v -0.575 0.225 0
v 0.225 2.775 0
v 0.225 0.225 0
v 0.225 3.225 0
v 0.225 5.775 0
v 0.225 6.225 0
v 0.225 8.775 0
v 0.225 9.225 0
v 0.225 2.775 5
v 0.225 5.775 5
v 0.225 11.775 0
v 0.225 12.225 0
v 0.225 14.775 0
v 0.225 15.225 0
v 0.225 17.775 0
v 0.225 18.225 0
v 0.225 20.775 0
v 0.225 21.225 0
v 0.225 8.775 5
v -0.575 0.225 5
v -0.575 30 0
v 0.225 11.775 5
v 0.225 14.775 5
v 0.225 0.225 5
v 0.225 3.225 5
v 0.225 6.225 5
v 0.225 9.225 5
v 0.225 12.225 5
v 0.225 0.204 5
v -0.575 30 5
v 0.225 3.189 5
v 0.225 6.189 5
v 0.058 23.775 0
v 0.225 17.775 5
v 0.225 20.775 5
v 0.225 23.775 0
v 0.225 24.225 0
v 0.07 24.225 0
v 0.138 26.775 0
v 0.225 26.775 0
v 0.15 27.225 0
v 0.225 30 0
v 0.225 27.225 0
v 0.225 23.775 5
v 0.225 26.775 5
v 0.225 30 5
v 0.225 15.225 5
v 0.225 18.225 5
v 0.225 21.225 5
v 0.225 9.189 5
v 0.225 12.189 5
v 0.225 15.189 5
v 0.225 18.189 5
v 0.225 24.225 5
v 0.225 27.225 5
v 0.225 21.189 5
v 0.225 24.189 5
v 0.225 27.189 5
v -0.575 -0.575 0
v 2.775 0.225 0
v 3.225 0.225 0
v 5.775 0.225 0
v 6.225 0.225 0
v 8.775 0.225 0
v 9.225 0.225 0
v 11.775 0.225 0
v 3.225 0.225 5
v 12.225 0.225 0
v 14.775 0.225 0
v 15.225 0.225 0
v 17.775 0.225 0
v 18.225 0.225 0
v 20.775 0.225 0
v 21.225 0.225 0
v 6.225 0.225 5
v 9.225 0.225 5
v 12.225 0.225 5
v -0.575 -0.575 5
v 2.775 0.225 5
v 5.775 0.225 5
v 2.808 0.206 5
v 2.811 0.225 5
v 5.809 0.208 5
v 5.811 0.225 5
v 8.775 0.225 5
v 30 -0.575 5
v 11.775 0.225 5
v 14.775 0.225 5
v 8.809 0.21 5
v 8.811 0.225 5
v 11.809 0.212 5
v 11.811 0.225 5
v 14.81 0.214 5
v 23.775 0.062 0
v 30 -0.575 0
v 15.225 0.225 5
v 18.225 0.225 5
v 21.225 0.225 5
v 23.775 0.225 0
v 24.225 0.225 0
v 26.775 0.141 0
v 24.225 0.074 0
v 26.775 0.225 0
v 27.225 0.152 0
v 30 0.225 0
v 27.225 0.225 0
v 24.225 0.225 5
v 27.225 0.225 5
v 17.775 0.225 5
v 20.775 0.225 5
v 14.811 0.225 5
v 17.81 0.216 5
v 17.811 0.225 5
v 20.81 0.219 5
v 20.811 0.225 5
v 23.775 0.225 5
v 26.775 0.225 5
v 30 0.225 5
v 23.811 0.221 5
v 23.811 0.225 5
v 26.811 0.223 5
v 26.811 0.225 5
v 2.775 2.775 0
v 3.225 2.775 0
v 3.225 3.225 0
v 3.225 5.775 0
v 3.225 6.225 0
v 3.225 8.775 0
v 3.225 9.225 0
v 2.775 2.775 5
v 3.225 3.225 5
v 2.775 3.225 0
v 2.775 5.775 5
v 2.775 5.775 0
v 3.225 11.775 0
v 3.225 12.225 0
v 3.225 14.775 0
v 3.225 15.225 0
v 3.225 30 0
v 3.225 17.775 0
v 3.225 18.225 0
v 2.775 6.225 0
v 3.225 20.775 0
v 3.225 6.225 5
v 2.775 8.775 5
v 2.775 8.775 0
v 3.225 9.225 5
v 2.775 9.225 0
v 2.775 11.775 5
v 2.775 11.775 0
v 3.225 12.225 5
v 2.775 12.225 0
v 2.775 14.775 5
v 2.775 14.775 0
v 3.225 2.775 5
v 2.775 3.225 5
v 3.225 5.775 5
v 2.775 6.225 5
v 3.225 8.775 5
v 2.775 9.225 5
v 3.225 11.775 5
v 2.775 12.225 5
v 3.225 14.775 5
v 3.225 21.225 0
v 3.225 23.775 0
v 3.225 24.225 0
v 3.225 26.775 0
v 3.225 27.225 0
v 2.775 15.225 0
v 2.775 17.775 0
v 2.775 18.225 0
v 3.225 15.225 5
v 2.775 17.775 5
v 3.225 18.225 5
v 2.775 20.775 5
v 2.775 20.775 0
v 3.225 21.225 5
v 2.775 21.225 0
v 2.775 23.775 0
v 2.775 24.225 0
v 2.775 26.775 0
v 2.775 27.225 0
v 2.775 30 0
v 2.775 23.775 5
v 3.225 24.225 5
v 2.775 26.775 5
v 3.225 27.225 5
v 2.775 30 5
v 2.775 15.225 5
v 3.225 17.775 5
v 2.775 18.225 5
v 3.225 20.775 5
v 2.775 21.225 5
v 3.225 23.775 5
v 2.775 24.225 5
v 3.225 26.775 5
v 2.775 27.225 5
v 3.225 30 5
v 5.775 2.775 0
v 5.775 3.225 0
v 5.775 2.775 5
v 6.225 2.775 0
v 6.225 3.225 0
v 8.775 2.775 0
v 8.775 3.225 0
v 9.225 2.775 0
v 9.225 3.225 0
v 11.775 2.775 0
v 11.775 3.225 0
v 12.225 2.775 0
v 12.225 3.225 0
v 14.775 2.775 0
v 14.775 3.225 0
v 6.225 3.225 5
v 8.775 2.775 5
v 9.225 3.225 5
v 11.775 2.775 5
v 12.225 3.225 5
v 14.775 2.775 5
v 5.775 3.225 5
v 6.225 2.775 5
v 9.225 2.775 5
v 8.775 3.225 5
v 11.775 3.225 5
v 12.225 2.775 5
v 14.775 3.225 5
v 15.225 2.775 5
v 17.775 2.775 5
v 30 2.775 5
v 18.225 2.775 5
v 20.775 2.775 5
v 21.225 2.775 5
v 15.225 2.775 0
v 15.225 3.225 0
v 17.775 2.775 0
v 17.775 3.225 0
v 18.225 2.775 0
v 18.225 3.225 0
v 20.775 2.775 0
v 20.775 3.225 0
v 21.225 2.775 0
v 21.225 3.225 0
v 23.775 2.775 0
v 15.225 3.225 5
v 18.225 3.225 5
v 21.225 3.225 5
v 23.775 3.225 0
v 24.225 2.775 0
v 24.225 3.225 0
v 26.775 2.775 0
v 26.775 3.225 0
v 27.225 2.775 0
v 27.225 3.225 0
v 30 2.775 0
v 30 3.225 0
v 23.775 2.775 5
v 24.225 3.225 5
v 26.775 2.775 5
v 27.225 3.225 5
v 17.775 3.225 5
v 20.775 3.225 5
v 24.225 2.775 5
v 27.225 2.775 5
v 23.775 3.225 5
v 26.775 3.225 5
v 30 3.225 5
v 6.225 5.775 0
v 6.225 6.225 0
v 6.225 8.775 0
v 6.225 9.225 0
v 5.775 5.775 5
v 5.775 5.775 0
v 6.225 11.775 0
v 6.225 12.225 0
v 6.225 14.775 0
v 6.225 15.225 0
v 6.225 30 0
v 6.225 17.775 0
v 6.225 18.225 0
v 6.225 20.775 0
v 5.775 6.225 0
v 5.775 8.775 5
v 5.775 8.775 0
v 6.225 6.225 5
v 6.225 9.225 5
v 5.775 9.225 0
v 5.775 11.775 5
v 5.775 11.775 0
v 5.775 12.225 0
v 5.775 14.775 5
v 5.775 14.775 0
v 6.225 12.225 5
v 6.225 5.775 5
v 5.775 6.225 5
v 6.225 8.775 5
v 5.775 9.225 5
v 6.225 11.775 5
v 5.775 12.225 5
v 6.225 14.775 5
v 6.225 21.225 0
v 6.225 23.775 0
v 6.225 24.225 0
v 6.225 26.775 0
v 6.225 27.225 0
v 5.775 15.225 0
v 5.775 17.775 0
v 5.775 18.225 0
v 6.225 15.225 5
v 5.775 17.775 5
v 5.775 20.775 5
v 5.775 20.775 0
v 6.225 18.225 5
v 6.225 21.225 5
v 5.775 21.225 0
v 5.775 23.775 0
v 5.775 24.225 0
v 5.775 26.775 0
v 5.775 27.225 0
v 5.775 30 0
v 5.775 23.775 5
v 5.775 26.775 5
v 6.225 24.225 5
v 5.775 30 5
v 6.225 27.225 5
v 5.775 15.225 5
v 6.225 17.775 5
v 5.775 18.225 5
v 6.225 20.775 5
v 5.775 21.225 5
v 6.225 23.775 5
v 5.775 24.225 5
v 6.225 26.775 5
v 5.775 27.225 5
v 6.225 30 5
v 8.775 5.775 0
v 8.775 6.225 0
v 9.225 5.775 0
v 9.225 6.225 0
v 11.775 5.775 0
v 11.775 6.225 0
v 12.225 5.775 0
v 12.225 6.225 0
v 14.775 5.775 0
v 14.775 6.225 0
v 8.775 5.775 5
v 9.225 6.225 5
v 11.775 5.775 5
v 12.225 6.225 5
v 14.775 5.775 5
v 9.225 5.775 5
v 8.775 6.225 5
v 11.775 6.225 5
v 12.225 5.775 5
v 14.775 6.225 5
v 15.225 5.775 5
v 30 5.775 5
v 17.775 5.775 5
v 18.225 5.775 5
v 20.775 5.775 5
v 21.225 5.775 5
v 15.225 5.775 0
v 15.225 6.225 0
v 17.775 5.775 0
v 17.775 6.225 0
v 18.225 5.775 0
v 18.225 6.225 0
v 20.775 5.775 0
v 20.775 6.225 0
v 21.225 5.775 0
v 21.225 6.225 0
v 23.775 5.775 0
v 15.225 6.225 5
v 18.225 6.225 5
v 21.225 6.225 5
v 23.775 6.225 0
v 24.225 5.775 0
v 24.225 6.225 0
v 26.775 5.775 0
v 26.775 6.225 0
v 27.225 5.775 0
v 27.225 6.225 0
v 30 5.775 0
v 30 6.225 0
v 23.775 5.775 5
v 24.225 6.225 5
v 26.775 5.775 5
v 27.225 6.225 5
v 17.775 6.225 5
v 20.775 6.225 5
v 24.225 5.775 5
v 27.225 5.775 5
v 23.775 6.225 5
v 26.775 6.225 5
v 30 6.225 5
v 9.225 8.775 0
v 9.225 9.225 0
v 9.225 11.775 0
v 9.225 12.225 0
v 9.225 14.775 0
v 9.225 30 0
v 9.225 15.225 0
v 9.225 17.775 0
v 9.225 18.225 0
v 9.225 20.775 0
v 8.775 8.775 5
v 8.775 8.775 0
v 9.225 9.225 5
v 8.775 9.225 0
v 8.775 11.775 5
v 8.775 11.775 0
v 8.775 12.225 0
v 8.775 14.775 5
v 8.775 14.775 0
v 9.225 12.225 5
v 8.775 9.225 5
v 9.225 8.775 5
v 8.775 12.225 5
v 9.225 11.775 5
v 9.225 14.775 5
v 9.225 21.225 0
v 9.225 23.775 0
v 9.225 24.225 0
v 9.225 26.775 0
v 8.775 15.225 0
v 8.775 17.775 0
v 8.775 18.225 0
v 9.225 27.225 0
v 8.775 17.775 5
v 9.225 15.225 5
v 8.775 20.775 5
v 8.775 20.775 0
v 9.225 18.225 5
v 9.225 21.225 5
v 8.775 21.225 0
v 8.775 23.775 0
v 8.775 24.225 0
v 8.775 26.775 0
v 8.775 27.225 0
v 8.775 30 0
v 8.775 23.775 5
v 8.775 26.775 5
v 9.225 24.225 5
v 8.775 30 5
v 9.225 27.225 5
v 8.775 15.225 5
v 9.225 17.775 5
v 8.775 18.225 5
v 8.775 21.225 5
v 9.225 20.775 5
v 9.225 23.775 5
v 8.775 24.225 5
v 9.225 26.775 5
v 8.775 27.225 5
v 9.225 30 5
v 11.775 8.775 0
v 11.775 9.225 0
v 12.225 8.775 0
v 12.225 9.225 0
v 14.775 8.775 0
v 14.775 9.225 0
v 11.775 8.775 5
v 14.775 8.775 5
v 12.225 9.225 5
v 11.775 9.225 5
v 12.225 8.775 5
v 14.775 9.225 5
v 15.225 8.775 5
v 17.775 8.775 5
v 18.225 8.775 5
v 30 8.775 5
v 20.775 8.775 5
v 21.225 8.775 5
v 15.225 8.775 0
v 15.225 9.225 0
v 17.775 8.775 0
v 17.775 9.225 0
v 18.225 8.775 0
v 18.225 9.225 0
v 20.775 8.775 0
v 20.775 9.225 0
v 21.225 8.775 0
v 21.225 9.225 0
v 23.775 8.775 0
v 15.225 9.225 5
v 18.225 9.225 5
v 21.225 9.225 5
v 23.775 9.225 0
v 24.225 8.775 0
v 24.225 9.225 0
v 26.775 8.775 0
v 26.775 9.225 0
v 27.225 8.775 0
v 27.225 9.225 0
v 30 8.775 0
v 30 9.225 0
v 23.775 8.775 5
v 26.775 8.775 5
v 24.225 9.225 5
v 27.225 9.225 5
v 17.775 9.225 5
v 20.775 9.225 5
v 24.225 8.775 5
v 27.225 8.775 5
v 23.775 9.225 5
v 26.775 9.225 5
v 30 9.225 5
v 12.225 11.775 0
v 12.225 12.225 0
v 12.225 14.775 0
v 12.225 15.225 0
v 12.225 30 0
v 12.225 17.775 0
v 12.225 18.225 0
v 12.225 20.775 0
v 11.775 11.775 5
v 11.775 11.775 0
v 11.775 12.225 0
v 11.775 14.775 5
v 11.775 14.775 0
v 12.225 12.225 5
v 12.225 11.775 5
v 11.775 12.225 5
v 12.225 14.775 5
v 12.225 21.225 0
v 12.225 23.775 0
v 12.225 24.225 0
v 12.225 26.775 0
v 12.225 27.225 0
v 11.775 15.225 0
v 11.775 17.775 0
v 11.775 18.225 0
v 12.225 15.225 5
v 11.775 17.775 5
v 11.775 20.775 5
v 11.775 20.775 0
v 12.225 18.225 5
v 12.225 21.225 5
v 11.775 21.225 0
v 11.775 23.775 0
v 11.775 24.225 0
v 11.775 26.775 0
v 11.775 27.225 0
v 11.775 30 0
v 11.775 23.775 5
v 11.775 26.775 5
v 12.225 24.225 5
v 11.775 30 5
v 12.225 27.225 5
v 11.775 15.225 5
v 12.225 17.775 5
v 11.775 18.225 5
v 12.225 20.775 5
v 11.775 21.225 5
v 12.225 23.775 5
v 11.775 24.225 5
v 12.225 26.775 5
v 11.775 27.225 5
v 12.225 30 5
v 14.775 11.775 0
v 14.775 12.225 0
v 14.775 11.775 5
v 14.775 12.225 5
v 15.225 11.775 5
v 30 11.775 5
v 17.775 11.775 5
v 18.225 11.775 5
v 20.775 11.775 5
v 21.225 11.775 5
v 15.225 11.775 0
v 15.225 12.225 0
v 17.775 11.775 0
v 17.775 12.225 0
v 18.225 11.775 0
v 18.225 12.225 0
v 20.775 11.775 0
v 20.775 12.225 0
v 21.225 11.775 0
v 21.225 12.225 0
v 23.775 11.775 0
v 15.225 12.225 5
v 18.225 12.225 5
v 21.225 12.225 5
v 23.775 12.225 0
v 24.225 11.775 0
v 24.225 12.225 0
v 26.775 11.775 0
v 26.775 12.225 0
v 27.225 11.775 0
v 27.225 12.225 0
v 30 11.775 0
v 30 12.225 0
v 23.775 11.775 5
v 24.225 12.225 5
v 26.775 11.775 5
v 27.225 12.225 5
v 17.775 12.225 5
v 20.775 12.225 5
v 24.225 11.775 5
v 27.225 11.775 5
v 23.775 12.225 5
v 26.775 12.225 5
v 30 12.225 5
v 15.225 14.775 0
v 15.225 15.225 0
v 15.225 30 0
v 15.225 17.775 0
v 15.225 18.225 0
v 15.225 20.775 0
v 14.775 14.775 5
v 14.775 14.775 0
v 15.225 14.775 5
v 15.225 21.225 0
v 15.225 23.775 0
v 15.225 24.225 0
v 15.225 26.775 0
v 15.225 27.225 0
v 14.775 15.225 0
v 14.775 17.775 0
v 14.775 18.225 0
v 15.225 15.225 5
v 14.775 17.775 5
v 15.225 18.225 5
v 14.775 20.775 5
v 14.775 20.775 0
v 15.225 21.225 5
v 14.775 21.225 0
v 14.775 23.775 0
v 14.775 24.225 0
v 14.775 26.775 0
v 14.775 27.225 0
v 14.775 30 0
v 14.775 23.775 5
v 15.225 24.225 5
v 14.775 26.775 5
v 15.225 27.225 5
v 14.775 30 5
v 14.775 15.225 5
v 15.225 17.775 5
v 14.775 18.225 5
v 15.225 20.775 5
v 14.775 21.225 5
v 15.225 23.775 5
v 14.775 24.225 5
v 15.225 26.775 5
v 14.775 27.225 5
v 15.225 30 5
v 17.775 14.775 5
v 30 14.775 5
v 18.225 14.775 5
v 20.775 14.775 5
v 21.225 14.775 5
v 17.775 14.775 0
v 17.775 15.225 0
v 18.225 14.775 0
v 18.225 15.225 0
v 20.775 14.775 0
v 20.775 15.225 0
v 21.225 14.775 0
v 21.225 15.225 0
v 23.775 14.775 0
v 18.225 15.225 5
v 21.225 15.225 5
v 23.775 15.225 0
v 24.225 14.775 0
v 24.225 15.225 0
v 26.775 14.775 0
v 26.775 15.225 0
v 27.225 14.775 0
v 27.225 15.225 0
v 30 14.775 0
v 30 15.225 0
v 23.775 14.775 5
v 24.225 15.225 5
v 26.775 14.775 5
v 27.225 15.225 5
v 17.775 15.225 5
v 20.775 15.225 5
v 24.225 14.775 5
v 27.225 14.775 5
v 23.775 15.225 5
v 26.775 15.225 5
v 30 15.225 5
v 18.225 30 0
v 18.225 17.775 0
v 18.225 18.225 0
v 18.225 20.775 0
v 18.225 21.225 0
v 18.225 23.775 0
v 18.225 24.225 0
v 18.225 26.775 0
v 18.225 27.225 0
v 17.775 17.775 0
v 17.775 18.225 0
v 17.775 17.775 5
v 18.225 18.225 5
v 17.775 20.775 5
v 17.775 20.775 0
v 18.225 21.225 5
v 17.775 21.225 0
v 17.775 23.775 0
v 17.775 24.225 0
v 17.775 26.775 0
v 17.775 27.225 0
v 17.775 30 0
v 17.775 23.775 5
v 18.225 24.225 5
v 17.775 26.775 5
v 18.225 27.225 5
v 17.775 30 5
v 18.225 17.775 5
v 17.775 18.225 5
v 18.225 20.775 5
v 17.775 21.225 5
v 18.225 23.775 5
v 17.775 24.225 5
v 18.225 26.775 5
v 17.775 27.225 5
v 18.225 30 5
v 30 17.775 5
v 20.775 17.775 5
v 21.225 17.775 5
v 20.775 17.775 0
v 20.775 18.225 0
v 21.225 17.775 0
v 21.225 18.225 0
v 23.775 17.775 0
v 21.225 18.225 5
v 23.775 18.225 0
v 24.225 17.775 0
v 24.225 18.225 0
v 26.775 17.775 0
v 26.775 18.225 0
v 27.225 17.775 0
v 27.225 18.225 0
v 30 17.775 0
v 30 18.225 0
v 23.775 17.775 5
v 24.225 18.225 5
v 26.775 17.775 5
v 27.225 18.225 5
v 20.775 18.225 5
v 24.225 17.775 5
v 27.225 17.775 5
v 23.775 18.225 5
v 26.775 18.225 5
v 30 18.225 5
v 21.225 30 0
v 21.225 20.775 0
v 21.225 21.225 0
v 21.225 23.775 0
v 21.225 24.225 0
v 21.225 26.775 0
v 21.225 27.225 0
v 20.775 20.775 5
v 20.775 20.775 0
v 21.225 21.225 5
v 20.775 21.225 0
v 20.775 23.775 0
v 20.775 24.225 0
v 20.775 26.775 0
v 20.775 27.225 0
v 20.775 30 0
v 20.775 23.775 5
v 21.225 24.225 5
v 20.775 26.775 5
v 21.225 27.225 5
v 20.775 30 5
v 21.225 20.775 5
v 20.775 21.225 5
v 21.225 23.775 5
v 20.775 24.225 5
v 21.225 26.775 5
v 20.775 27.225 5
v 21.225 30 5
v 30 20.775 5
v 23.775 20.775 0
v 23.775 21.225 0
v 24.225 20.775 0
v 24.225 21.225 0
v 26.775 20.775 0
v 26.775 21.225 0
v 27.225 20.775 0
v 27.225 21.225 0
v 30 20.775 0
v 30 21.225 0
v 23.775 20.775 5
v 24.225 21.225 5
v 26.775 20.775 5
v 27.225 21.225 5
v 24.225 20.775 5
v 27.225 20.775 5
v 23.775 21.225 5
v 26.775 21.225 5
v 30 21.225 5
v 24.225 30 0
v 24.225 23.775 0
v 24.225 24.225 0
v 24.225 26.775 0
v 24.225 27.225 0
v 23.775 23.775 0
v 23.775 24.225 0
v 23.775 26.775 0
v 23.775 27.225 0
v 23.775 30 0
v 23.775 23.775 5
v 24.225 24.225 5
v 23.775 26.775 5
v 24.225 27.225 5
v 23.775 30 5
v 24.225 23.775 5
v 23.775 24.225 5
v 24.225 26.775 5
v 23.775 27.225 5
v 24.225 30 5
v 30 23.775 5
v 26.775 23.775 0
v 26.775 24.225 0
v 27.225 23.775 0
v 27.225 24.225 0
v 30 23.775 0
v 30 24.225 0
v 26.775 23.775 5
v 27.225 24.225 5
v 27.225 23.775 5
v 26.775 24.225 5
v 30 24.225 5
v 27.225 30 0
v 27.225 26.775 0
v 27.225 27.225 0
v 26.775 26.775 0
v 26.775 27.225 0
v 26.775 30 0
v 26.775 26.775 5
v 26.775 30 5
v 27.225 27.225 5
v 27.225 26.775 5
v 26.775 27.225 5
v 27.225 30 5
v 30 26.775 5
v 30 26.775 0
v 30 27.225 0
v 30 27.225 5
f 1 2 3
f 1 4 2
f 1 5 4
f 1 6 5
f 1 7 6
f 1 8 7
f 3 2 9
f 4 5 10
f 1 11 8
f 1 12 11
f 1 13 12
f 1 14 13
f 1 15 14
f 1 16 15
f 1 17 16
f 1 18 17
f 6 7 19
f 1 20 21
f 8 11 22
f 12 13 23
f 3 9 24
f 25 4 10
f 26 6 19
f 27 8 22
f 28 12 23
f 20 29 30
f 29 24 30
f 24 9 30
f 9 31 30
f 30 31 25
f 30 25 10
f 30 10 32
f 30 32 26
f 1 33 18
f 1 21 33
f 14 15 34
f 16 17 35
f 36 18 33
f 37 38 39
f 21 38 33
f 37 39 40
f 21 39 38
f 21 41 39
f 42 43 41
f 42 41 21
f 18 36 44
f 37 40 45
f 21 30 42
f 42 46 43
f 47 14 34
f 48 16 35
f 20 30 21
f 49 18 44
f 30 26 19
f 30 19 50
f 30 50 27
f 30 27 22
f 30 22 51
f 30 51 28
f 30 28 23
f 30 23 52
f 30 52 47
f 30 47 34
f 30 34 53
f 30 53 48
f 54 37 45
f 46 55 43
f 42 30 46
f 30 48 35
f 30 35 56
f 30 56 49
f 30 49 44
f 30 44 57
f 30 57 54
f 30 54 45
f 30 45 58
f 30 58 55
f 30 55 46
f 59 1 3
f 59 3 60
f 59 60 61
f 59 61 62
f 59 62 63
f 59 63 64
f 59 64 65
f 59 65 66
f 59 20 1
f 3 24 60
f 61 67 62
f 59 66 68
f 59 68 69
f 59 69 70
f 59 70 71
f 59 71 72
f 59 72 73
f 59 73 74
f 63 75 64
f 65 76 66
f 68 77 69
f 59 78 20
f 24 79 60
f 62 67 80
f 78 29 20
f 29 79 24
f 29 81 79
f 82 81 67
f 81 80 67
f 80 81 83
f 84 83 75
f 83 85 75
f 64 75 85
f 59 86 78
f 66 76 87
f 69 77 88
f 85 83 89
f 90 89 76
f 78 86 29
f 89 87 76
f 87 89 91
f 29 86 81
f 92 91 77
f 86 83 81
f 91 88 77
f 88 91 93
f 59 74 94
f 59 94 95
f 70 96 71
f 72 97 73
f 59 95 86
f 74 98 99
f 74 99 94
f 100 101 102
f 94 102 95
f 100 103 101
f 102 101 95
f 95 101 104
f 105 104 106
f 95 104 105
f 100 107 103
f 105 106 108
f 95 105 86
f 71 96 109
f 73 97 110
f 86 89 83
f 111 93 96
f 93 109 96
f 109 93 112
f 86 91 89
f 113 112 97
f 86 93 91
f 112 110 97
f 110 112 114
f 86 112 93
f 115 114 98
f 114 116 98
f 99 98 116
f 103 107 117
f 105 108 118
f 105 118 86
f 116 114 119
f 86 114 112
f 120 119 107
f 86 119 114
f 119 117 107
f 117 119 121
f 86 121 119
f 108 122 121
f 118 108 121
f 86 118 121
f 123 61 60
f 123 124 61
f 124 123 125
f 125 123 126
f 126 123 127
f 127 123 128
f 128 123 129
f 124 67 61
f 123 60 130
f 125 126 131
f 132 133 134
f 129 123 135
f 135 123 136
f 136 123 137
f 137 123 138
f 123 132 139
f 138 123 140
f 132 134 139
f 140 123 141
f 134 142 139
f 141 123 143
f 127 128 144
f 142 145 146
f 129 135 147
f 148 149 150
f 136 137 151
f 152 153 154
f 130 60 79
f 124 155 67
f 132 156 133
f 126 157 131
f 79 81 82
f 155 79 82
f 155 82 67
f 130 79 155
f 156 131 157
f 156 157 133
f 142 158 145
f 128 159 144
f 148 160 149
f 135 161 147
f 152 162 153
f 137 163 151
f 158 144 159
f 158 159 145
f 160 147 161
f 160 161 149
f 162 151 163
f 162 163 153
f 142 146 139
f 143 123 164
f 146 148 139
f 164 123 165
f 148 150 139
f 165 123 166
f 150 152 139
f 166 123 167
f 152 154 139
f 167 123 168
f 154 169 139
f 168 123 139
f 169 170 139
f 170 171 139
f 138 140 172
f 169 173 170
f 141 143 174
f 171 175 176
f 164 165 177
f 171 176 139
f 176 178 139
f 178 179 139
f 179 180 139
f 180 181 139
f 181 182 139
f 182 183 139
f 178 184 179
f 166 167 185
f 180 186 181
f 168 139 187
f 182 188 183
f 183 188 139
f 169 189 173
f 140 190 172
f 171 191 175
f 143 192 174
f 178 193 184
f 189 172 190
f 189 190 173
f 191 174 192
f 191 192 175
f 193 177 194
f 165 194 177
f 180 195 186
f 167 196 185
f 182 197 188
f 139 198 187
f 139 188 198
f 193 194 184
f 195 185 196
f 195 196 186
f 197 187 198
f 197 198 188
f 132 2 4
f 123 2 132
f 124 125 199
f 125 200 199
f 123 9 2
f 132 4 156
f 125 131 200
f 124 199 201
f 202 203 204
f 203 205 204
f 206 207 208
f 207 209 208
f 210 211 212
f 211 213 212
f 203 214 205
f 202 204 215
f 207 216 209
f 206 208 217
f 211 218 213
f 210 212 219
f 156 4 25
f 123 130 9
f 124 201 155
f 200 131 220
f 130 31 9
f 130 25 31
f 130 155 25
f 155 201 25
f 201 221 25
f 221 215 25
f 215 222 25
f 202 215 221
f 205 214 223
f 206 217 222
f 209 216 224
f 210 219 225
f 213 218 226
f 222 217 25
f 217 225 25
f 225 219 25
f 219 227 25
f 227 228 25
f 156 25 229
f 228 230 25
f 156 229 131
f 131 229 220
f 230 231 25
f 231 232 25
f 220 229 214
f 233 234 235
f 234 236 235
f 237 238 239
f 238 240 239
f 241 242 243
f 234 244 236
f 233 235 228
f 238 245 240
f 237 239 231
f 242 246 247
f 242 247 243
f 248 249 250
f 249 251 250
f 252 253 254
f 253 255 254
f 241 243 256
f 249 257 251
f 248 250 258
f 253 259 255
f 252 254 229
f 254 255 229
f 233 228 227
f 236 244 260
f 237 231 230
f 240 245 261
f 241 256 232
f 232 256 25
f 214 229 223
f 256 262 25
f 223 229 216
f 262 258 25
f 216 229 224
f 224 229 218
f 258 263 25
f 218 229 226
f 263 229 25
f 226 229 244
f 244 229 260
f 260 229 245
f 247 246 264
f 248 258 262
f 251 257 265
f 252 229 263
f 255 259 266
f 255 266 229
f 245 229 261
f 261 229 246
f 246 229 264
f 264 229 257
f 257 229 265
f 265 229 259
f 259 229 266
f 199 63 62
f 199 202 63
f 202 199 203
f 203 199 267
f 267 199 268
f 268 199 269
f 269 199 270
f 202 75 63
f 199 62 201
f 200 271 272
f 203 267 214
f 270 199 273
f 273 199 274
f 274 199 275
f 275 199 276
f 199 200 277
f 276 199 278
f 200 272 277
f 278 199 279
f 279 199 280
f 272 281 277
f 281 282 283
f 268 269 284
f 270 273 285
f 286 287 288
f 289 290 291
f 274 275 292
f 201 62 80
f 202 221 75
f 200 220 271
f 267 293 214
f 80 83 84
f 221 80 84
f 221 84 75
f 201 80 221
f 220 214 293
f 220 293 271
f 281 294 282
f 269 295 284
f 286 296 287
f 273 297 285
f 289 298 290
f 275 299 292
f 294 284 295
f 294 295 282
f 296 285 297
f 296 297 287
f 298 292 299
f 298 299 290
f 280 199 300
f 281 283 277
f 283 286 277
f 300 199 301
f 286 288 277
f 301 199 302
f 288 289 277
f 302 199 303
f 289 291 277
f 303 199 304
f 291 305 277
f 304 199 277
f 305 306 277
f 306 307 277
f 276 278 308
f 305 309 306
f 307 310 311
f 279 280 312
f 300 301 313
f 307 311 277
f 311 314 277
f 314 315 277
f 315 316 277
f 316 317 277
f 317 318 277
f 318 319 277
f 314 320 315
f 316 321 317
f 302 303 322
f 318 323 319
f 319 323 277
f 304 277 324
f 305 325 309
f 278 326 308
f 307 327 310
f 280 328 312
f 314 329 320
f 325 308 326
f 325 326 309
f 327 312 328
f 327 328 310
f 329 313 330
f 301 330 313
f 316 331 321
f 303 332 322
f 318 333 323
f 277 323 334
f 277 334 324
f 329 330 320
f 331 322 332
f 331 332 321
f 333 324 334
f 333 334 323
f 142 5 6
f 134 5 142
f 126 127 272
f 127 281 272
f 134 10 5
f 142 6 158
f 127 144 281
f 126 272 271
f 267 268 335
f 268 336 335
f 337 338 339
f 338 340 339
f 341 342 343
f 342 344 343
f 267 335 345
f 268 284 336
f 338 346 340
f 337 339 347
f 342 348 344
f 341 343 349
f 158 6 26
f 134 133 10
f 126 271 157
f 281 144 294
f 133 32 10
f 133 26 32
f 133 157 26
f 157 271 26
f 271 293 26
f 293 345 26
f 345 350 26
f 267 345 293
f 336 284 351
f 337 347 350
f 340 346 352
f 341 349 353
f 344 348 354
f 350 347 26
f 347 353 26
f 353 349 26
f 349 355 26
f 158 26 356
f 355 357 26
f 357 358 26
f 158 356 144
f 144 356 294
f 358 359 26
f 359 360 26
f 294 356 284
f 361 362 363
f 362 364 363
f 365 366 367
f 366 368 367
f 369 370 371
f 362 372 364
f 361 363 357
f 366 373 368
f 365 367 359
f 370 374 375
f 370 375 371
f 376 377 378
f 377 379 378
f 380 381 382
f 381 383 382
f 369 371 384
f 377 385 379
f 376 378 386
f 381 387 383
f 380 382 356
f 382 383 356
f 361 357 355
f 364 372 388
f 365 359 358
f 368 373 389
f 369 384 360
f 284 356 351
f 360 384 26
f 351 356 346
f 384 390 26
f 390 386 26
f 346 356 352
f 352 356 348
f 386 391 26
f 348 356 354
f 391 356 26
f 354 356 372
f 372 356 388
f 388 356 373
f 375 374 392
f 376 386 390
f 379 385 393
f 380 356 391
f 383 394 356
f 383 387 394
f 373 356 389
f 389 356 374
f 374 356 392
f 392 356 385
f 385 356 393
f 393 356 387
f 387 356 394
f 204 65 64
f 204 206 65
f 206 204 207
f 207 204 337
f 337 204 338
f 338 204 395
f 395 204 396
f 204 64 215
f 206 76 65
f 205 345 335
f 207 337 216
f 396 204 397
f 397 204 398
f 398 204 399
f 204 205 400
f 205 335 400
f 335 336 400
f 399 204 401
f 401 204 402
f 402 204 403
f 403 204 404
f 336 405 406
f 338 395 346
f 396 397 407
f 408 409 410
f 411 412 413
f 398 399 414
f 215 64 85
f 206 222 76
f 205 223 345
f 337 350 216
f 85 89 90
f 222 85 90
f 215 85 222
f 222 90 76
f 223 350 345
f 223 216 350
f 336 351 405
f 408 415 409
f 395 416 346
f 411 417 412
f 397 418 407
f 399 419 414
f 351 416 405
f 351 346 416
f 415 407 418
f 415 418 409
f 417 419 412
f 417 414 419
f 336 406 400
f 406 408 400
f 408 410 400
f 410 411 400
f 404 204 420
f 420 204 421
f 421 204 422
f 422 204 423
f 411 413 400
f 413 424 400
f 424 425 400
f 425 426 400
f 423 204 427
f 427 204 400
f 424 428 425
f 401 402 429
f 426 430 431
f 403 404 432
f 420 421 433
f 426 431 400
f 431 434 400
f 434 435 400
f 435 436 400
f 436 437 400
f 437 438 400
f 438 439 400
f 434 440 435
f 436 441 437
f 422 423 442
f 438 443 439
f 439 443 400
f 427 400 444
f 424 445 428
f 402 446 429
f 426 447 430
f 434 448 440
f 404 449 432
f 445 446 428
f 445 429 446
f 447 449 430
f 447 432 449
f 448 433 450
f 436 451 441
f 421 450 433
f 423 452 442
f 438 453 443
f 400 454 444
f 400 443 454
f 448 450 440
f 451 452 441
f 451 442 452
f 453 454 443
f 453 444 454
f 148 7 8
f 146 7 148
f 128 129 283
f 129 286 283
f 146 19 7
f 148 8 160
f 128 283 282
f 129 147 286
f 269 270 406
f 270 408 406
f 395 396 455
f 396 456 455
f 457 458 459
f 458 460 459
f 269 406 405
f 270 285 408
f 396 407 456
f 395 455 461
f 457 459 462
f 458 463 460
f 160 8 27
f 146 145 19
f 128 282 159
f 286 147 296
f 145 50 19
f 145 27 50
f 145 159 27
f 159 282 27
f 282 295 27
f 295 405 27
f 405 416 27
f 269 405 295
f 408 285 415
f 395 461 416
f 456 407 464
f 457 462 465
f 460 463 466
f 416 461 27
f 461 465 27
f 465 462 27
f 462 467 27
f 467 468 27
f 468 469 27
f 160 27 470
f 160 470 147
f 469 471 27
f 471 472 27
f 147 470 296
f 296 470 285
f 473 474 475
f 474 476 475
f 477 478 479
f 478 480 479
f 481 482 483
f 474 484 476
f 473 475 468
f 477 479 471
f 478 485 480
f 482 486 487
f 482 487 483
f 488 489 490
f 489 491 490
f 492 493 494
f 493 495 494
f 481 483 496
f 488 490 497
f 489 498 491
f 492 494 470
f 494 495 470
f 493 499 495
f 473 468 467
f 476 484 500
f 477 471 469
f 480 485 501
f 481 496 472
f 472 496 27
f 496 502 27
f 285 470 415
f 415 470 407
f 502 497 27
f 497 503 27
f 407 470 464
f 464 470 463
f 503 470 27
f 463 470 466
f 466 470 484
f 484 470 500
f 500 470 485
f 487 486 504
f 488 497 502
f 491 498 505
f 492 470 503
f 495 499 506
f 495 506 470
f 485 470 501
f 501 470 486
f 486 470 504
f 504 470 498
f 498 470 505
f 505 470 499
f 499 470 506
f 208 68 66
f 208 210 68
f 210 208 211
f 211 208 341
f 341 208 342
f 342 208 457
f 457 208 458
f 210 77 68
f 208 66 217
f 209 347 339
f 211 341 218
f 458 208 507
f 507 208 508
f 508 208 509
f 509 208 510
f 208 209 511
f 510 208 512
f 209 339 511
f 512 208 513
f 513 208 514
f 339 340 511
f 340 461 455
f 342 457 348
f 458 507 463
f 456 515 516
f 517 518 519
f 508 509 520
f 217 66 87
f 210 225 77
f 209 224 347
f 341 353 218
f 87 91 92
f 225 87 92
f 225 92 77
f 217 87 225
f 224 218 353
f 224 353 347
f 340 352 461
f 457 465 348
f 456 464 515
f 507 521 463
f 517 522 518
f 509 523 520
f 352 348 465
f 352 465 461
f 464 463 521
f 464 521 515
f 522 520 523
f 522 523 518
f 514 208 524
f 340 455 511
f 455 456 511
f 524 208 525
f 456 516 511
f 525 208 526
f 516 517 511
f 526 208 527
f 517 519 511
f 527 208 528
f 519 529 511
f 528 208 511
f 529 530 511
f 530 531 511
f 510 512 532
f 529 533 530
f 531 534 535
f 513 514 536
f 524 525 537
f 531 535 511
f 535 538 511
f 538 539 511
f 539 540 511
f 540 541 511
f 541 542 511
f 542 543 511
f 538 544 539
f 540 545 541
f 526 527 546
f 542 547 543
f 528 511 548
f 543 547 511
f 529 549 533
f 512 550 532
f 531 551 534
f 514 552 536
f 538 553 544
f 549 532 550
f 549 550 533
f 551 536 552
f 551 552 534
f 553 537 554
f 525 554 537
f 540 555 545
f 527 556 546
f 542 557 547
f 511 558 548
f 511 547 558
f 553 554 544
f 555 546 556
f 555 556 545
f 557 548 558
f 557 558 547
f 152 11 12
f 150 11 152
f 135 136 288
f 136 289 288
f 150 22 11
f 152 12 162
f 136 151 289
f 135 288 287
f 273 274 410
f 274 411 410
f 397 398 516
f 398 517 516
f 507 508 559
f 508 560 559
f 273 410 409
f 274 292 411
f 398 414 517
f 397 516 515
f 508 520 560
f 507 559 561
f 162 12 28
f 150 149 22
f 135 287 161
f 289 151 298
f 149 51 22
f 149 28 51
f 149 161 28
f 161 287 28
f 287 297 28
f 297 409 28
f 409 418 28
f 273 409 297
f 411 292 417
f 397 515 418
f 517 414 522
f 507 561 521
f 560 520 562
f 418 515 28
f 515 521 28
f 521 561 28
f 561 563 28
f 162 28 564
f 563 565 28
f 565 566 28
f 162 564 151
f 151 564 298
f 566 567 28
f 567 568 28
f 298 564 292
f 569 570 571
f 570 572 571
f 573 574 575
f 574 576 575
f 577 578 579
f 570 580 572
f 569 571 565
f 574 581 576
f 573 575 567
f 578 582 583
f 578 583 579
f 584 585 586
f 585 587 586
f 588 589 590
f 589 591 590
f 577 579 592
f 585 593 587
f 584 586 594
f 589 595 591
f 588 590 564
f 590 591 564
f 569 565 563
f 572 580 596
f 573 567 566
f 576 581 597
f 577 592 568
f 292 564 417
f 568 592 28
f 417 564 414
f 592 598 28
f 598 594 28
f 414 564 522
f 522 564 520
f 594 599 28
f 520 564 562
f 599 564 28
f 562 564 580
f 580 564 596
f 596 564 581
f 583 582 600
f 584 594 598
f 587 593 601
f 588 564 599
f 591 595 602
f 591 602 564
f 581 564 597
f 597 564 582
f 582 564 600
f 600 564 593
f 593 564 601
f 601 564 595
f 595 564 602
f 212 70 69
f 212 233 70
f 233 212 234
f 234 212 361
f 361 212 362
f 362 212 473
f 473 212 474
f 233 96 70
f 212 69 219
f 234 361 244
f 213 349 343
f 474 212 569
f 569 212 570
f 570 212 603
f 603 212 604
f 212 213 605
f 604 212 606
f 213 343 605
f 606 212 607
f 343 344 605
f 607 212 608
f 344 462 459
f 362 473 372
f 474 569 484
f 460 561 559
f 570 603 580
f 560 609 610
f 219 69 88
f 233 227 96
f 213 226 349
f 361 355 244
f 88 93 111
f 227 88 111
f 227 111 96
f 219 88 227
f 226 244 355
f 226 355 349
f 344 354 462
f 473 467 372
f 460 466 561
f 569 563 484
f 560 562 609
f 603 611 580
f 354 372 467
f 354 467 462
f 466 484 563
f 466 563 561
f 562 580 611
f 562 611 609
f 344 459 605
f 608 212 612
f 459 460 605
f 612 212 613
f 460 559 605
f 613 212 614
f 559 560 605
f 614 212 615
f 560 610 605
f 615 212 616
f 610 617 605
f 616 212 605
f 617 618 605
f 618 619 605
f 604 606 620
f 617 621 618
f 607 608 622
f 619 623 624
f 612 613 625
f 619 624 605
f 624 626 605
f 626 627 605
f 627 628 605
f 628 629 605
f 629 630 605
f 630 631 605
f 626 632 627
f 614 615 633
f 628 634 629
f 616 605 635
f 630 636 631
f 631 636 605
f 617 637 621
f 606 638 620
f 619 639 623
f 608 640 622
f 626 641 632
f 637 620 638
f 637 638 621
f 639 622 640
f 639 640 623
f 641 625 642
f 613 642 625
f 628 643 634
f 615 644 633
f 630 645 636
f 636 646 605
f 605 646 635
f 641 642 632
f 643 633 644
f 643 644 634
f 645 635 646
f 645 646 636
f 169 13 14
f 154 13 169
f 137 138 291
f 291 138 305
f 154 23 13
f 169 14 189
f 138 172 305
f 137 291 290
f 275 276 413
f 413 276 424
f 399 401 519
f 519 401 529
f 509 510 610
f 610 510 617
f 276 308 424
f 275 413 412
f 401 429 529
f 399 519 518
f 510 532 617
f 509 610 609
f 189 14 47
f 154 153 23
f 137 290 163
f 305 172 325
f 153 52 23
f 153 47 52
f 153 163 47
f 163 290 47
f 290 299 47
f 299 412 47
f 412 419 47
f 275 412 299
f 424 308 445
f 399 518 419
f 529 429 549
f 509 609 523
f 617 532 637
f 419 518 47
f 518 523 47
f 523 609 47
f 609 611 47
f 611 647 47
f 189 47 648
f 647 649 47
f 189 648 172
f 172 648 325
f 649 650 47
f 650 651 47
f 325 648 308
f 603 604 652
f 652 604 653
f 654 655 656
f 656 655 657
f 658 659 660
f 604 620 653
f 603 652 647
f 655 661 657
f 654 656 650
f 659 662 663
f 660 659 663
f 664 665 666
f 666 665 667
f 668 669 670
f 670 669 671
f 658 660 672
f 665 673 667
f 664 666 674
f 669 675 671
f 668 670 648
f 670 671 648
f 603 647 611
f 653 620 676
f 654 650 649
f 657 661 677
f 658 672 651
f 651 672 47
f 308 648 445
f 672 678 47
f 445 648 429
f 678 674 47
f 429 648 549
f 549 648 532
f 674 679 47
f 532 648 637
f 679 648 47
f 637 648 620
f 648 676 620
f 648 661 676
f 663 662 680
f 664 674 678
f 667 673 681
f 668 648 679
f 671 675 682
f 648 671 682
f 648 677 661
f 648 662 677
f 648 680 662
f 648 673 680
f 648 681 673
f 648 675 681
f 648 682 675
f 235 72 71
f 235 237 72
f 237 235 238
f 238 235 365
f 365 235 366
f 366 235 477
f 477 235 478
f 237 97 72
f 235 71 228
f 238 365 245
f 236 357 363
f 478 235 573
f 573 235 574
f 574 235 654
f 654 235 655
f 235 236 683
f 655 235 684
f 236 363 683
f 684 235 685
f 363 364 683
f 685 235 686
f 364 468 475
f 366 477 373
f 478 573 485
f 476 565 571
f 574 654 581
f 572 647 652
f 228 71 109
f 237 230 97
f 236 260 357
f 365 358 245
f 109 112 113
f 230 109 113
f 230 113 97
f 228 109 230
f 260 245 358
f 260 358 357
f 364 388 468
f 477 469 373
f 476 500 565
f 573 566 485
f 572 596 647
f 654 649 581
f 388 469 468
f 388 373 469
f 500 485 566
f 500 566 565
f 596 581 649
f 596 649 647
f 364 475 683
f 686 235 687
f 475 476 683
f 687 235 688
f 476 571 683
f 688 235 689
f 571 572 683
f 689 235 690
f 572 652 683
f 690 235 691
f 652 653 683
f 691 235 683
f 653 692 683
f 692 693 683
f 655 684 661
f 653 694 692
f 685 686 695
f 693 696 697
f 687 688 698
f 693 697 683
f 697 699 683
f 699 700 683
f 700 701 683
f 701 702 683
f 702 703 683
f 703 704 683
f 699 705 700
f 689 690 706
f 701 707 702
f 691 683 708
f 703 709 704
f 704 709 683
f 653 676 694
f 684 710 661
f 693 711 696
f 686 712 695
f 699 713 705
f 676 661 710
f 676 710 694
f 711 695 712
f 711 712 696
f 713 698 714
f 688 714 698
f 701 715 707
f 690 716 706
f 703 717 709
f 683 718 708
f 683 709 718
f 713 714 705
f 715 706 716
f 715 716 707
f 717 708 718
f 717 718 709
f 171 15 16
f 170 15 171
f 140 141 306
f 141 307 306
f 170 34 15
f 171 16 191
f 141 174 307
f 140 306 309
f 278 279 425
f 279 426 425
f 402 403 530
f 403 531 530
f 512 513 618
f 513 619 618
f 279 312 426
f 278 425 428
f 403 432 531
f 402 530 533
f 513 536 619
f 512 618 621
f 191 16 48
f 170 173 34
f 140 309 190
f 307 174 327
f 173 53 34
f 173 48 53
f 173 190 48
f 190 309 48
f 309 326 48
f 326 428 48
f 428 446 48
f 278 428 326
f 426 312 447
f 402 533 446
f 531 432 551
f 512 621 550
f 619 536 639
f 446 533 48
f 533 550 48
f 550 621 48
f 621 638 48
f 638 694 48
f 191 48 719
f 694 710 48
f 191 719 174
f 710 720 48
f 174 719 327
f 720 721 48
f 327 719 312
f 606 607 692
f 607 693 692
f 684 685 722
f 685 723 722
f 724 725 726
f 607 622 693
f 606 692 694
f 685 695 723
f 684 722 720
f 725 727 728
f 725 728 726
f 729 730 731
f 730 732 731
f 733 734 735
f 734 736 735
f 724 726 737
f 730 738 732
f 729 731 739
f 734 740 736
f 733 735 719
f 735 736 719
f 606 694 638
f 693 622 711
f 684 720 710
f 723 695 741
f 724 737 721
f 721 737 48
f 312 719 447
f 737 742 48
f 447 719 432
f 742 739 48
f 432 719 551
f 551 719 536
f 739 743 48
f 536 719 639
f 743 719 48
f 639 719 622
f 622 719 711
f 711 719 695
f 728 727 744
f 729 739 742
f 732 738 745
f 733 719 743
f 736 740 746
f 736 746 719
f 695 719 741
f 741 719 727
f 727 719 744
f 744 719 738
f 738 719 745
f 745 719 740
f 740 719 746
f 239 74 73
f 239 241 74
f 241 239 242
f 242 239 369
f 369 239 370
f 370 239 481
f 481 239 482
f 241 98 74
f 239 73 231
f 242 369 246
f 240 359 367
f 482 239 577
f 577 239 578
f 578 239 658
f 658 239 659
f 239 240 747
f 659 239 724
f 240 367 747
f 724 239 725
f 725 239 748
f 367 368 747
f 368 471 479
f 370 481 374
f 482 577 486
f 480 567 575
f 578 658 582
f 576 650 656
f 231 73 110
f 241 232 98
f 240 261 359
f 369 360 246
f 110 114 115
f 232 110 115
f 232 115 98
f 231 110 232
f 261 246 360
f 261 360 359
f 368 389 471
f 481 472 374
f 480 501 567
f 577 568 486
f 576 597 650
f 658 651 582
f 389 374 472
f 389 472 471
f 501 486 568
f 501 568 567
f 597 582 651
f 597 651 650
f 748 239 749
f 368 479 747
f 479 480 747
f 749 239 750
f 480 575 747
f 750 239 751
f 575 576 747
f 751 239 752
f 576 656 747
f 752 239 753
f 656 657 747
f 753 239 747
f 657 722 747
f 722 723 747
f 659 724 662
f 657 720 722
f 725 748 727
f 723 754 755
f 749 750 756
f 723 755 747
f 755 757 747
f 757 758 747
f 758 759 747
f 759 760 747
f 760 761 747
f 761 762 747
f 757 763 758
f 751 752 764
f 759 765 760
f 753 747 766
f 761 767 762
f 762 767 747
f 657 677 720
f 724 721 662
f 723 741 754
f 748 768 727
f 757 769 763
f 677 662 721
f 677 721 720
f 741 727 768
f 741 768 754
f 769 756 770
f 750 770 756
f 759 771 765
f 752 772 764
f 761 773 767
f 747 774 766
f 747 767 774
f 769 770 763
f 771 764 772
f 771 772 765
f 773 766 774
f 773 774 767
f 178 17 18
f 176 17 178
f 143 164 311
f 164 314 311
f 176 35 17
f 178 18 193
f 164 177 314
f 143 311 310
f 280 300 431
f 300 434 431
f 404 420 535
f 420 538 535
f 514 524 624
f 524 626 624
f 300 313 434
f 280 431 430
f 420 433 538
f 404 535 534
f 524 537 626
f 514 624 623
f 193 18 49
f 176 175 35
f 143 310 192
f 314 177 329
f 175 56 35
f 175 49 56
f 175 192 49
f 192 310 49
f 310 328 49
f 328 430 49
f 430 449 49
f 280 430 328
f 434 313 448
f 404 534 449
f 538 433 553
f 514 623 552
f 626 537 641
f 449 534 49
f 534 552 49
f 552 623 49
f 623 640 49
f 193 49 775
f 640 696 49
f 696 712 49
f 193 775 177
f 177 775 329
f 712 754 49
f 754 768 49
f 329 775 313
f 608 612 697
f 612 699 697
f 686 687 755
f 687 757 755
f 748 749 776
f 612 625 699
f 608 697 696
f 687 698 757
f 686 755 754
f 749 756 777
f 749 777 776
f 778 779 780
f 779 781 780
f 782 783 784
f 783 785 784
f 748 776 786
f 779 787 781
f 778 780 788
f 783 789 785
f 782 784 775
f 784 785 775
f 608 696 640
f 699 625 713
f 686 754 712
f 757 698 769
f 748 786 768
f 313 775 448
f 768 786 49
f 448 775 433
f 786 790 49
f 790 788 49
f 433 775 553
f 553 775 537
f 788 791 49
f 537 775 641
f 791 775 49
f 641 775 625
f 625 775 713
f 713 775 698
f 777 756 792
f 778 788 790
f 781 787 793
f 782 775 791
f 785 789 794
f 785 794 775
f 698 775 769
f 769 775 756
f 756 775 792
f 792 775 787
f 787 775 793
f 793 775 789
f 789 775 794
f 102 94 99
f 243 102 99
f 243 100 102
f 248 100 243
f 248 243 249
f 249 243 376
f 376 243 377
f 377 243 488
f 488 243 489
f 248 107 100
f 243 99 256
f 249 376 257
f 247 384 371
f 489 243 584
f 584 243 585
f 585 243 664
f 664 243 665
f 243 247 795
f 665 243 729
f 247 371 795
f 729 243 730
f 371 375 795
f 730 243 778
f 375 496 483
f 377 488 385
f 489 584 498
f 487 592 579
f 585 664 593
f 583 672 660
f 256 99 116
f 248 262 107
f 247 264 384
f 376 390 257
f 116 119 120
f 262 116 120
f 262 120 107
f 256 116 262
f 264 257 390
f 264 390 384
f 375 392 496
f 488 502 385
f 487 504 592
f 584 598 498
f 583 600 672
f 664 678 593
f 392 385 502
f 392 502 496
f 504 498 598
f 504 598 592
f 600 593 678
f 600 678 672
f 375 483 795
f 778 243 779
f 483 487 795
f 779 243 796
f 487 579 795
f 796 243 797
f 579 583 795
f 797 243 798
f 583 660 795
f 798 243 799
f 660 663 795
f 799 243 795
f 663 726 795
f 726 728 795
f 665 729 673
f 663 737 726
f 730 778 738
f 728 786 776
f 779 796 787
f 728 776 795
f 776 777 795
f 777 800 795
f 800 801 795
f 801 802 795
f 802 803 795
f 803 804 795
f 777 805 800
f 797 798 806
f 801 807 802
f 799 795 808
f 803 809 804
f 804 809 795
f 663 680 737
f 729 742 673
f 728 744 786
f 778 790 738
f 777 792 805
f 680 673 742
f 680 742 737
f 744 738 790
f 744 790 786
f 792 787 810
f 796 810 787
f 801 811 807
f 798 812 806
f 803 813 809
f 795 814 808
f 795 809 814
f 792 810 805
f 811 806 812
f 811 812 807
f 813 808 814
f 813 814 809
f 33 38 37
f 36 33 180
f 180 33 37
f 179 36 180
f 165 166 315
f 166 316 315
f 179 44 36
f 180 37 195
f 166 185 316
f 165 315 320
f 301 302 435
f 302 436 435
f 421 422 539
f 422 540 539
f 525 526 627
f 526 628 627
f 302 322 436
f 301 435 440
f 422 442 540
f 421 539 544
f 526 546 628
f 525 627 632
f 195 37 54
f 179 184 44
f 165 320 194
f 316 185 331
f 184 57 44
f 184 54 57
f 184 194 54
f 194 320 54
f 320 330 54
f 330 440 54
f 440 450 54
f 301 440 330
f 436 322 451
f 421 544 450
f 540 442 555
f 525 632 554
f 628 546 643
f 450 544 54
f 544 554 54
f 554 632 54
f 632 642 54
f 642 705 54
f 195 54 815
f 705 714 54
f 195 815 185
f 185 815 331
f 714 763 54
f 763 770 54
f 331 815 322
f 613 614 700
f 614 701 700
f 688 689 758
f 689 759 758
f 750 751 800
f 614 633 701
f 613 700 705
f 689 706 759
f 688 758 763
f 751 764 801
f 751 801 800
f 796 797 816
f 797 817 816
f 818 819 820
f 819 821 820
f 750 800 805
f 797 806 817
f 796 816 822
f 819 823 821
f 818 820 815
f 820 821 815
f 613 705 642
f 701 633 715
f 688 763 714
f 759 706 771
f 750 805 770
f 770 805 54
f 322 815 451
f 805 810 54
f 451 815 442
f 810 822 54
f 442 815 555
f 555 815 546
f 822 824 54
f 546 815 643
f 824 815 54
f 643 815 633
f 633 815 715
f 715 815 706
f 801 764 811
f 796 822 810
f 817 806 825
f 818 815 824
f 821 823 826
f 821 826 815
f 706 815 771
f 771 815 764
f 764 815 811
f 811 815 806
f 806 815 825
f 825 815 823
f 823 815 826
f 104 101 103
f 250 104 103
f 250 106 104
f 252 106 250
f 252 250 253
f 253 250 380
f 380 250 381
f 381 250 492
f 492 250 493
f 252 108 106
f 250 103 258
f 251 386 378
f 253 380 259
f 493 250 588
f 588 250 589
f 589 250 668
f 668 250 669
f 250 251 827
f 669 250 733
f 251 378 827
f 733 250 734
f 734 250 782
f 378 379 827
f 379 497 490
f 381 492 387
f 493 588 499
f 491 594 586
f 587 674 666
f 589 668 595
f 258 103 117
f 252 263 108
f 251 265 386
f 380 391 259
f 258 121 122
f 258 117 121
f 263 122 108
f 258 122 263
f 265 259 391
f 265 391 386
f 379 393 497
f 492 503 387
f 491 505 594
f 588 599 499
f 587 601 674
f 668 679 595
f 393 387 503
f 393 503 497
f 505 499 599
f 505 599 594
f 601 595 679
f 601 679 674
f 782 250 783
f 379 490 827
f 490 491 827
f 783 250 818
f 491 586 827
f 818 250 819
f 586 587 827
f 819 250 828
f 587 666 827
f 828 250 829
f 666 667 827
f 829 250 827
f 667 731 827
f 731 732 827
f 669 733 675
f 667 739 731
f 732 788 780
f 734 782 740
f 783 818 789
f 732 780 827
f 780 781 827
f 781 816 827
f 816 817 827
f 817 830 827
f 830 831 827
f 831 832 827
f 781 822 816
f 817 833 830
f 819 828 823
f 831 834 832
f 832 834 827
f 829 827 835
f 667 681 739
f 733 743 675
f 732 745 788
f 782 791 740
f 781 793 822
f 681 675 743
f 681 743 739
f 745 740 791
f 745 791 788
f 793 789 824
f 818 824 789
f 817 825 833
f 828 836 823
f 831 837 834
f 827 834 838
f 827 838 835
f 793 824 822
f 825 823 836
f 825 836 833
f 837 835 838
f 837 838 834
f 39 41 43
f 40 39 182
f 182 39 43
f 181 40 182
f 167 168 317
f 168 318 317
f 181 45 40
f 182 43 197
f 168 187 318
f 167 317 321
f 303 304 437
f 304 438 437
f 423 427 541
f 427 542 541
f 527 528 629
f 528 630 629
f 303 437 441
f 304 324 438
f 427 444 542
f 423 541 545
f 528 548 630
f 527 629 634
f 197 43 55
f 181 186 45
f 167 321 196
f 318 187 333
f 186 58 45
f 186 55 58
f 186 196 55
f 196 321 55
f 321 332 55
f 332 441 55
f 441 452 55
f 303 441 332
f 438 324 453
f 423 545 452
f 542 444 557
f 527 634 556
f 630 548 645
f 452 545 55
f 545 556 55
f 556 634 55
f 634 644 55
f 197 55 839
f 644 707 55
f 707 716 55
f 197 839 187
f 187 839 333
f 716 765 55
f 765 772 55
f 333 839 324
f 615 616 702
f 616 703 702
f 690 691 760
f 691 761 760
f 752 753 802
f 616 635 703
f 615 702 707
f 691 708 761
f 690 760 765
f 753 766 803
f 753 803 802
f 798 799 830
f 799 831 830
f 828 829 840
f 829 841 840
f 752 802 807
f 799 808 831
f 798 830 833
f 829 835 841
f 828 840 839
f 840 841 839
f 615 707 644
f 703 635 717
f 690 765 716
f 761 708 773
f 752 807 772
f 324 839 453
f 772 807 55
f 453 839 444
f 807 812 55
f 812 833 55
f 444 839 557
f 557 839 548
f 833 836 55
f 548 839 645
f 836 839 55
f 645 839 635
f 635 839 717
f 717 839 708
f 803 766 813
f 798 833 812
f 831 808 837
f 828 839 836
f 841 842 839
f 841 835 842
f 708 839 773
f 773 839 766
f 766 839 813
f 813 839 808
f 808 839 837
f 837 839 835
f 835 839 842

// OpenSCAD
// baffle-mini.scad — 10x10 test swatch of baffle.scad
//
// Same geometry as baffle.scad (identical pitch / wall / height / border), just
// clipped to a 10x10 corner so you can verify pitch + fit with a short print and
// almost no filament before committing to the full 64x64.
//
// Outer reference walls only on the LEFT (x=0) and BOTTOM (y=0) edges; the top
// and right are left open. Like the full part, the outer walls extend OUTWARD
// past the edge, so every pixel cell — including the edge ones — is the same
// size. Print FLAT, no supports. Black matte PLA.

/* ---------------- parameters ---------------- */
pitch  = 3;     // LED pixel pitch (mm)  -> cell size
n      = 10;    // cells per side in this test swatch
wall   = 0.45;  // internal wall thickness (mm). A hair over the 0.4mm nozzle so
                // the slicer reliably lays one solid perimeter (a true 0.4 == the
                // line width gets dropped unless "Detect thin wall" is on).
height = 5;     // wall height in Z (mm)
border = 0.8;   // thickness of the bottom/left reference walls (mm)

span = n * pitch;            // 30 mm
ext  = border - wall / 2;    // outer-wall overhang past the edge
echo(span = span, cells = n * n);

/* ---------------- geometry ------------------ */

// interior walls at x,y = 3, 6, ... (n-1)*pitch
module internal_walls() {
    for (k = [1 : n - 1]) {
        // walls running along Y (constant x)
        translate([k * pitch - wall / 2, 0, 0])
            cube([wall, span, height]);
        // walls running along X (constant y)
        translate([0, k * pitch - wall / 2, 0])
            cube([span, wall, height]);
    }
}

// outer reference walls on the LEFT (x=0) and BOTTOM (y=0) edges only.
// Their inner faces sit flush with the edge pixels' openings; the body extends
// outward (past x=0 / y=0) so the edge pixels stay full size.
module corner_walls() {
    translate([-ext, -ext, 0]) cube([border, span + ext, height]); // left
    translate([-ext, -ext, 0]) cube([span + ext, border, height]); // bottom
}

union() {
    corner_walls();
    internal_walls();
}
